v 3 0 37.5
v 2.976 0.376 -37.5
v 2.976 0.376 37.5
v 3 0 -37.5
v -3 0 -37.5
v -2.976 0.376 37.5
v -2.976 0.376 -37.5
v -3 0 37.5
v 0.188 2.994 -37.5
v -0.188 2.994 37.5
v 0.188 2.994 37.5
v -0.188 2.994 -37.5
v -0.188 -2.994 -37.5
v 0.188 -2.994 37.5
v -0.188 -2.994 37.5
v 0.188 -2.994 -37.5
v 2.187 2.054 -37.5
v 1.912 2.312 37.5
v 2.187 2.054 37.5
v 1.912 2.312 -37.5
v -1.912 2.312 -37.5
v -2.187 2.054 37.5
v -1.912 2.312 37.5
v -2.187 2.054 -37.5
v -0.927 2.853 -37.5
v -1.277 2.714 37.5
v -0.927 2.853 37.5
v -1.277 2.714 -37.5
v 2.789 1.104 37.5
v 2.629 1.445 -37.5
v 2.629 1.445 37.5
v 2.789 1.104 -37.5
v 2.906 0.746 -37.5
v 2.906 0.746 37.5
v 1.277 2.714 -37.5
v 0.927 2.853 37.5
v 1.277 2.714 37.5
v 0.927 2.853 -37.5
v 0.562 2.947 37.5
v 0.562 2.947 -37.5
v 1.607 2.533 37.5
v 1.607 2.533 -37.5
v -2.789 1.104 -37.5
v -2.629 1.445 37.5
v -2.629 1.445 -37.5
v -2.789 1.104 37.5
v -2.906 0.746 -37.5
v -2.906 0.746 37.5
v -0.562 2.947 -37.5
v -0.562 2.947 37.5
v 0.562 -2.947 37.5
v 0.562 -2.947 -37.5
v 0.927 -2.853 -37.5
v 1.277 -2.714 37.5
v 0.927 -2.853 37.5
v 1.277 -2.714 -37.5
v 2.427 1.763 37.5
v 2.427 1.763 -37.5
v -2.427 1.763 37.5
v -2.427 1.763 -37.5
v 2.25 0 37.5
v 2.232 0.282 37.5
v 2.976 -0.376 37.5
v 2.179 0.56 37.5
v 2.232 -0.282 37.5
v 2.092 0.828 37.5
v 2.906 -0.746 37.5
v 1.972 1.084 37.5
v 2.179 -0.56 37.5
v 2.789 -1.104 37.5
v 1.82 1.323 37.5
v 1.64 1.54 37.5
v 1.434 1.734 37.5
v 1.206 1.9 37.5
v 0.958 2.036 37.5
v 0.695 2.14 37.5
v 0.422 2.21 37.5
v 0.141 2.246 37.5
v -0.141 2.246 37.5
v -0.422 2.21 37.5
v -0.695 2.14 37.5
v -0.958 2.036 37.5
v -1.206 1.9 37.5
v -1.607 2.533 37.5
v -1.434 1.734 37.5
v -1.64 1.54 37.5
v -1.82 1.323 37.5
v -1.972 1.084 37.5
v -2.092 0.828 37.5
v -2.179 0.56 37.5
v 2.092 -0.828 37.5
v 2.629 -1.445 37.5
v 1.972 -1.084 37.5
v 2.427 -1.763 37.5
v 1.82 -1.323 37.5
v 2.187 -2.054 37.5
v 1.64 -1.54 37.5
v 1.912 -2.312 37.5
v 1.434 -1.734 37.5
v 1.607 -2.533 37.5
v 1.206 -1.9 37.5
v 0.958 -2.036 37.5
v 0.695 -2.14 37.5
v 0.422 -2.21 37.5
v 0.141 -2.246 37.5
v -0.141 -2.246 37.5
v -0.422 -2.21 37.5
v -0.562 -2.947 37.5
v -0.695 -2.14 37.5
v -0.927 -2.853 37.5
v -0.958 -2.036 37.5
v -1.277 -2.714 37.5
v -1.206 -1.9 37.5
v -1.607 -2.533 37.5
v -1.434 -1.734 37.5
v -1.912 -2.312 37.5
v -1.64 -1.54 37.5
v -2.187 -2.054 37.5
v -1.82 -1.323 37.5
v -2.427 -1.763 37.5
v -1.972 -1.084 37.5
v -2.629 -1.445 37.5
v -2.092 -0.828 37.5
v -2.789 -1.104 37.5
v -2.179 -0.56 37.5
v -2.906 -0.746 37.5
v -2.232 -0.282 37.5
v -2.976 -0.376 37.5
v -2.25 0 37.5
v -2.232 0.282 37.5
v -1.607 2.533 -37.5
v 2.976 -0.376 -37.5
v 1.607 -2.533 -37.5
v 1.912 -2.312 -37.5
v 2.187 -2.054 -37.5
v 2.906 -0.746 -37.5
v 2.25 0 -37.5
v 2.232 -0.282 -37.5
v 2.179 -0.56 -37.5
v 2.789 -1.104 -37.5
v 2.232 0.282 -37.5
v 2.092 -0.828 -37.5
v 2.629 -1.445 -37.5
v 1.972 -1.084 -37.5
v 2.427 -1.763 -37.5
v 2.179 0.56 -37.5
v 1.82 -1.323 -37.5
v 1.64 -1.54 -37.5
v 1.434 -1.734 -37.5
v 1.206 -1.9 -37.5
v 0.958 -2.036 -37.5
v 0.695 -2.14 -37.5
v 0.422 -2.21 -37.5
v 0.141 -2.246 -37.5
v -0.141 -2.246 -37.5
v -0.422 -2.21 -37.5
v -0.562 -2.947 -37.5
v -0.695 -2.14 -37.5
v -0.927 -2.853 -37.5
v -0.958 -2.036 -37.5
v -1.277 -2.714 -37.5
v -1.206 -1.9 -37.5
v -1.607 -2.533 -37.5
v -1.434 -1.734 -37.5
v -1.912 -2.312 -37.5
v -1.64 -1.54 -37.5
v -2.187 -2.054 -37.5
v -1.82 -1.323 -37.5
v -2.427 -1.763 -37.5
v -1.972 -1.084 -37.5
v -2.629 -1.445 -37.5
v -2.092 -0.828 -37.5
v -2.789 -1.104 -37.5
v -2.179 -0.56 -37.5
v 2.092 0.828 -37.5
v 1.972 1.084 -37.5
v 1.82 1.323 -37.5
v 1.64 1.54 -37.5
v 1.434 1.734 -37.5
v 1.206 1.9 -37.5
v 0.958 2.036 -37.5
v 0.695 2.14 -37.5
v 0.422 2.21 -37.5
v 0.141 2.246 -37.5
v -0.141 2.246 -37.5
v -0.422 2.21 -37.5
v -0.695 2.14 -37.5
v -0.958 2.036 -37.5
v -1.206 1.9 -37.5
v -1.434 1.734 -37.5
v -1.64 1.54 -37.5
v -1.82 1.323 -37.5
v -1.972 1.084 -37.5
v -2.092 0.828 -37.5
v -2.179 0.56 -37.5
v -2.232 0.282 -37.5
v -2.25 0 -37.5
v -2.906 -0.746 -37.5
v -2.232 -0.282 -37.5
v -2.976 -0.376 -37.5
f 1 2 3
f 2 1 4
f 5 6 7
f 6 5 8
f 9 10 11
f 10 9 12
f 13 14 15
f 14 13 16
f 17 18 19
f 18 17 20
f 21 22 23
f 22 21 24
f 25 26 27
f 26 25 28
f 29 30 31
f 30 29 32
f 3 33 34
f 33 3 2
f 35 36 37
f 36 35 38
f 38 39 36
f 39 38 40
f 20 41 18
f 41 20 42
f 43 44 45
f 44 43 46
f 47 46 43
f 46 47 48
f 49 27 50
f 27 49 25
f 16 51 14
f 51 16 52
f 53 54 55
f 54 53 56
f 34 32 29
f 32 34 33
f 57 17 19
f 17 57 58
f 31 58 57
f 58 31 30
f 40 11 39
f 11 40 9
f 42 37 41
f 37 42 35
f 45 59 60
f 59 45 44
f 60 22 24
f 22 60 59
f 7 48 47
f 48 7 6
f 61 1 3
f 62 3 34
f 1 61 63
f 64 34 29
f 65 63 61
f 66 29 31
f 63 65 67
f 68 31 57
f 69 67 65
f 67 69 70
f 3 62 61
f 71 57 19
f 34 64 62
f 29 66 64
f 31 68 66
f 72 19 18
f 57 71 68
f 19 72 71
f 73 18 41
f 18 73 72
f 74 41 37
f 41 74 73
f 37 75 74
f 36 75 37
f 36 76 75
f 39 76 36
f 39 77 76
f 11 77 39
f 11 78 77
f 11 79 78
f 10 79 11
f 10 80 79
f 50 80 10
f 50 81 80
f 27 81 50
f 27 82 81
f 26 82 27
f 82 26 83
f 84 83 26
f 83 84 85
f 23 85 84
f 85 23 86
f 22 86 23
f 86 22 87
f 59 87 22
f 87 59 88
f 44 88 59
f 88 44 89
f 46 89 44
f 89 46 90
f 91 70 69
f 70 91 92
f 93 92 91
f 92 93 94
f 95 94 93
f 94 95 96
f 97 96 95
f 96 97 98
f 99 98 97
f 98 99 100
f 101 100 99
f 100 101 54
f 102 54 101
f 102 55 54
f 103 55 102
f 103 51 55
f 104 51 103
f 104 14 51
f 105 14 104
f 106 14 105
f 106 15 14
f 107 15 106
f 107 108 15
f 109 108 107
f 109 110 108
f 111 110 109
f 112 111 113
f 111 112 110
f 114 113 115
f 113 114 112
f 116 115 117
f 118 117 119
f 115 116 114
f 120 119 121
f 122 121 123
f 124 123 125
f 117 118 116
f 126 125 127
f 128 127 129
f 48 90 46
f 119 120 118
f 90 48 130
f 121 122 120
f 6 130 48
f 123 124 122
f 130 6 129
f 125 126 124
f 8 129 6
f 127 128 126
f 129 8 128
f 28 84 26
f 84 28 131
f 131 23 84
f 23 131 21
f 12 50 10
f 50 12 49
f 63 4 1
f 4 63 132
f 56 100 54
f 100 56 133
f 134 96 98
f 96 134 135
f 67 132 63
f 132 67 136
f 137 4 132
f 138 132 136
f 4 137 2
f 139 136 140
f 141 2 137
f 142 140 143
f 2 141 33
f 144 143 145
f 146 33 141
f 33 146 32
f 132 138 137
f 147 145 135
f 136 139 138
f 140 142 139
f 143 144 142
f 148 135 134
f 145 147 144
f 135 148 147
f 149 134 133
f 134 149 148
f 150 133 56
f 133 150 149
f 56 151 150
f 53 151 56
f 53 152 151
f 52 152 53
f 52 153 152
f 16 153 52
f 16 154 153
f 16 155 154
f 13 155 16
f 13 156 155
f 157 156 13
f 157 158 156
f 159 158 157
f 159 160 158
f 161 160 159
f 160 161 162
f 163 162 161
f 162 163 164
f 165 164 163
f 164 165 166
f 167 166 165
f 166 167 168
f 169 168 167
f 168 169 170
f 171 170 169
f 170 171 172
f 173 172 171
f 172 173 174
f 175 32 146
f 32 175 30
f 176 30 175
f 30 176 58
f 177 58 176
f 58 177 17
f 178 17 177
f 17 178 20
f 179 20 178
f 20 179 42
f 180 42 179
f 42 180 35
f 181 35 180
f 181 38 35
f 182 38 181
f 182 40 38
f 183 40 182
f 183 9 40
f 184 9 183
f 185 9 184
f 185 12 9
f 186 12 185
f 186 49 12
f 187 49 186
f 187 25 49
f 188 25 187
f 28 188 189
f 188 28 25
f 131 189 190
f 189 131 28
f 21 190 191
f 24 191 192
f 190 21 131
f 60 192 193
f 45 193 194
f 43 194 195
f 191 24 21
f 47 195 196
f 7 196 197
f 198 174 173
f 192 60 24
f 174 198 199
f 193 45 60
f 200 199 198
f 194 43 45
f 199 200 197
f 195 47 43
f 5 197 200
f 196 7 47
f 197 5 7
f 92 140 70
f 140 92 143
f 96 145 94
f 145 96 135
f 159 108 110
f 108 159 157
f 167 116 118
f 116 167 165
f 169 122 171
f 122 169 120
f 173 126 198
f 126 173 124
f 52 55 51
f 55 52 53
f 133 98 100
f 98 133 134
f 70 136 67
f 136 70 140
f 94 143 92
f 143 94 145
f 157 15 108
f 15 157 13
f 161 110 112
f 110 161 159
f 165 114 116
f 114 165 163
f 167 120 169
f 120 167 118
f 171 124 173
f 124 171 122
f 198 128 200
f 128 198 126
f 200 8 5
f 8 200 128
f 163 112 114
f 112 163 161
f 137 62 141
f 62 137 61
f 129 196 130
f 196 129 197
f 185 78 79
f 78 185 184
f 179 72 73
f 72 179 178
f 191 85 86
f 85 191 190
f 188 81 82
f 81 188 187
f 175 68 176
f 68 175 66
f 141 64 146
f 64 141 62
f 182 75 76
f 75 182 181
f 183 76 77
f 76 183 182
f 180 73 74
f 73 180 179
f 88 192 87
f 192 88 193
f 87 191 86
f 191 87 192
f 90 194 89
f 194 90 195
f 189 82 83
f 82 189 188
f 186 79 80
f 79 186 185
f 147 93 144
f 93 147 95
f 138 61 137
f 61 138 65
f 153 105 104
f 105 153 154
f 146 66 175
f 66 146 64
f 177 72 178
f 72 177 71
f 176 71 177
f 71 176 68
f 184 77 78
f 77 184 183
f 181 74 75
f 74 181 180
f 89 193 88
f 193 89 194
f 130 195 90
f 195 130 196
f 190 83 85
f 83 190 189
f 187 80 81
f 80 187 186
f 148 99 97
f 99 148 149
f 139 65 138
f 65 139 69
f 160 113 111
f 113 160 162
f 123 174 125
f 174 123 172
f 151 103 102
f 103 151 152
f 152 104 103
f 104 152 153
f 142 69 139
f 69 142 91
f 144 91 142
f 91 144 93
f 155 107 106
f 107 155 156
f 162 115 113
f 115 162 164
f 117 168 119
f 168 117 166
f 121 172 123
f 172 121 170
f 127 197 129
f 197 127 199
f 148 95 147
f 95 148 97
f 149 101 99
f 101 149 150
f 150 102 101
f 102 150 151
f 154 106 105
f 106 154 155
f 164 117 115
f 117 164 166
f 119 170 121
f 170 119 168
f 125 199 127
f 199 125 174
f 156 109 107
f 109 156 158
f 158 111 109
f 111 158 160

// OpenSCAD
$fn = 50;


difference() {
	union() {
		translate(v = [0, 0, -37.5000000000]) {
			cylinder(h = 75, r = 3.0000000000);
		}
	}
	union() {
		translate(v = [0, 0, -100.0000000000]) {
			cylinder(h = 200, r = 2.2500000000);
		}
	}
}
